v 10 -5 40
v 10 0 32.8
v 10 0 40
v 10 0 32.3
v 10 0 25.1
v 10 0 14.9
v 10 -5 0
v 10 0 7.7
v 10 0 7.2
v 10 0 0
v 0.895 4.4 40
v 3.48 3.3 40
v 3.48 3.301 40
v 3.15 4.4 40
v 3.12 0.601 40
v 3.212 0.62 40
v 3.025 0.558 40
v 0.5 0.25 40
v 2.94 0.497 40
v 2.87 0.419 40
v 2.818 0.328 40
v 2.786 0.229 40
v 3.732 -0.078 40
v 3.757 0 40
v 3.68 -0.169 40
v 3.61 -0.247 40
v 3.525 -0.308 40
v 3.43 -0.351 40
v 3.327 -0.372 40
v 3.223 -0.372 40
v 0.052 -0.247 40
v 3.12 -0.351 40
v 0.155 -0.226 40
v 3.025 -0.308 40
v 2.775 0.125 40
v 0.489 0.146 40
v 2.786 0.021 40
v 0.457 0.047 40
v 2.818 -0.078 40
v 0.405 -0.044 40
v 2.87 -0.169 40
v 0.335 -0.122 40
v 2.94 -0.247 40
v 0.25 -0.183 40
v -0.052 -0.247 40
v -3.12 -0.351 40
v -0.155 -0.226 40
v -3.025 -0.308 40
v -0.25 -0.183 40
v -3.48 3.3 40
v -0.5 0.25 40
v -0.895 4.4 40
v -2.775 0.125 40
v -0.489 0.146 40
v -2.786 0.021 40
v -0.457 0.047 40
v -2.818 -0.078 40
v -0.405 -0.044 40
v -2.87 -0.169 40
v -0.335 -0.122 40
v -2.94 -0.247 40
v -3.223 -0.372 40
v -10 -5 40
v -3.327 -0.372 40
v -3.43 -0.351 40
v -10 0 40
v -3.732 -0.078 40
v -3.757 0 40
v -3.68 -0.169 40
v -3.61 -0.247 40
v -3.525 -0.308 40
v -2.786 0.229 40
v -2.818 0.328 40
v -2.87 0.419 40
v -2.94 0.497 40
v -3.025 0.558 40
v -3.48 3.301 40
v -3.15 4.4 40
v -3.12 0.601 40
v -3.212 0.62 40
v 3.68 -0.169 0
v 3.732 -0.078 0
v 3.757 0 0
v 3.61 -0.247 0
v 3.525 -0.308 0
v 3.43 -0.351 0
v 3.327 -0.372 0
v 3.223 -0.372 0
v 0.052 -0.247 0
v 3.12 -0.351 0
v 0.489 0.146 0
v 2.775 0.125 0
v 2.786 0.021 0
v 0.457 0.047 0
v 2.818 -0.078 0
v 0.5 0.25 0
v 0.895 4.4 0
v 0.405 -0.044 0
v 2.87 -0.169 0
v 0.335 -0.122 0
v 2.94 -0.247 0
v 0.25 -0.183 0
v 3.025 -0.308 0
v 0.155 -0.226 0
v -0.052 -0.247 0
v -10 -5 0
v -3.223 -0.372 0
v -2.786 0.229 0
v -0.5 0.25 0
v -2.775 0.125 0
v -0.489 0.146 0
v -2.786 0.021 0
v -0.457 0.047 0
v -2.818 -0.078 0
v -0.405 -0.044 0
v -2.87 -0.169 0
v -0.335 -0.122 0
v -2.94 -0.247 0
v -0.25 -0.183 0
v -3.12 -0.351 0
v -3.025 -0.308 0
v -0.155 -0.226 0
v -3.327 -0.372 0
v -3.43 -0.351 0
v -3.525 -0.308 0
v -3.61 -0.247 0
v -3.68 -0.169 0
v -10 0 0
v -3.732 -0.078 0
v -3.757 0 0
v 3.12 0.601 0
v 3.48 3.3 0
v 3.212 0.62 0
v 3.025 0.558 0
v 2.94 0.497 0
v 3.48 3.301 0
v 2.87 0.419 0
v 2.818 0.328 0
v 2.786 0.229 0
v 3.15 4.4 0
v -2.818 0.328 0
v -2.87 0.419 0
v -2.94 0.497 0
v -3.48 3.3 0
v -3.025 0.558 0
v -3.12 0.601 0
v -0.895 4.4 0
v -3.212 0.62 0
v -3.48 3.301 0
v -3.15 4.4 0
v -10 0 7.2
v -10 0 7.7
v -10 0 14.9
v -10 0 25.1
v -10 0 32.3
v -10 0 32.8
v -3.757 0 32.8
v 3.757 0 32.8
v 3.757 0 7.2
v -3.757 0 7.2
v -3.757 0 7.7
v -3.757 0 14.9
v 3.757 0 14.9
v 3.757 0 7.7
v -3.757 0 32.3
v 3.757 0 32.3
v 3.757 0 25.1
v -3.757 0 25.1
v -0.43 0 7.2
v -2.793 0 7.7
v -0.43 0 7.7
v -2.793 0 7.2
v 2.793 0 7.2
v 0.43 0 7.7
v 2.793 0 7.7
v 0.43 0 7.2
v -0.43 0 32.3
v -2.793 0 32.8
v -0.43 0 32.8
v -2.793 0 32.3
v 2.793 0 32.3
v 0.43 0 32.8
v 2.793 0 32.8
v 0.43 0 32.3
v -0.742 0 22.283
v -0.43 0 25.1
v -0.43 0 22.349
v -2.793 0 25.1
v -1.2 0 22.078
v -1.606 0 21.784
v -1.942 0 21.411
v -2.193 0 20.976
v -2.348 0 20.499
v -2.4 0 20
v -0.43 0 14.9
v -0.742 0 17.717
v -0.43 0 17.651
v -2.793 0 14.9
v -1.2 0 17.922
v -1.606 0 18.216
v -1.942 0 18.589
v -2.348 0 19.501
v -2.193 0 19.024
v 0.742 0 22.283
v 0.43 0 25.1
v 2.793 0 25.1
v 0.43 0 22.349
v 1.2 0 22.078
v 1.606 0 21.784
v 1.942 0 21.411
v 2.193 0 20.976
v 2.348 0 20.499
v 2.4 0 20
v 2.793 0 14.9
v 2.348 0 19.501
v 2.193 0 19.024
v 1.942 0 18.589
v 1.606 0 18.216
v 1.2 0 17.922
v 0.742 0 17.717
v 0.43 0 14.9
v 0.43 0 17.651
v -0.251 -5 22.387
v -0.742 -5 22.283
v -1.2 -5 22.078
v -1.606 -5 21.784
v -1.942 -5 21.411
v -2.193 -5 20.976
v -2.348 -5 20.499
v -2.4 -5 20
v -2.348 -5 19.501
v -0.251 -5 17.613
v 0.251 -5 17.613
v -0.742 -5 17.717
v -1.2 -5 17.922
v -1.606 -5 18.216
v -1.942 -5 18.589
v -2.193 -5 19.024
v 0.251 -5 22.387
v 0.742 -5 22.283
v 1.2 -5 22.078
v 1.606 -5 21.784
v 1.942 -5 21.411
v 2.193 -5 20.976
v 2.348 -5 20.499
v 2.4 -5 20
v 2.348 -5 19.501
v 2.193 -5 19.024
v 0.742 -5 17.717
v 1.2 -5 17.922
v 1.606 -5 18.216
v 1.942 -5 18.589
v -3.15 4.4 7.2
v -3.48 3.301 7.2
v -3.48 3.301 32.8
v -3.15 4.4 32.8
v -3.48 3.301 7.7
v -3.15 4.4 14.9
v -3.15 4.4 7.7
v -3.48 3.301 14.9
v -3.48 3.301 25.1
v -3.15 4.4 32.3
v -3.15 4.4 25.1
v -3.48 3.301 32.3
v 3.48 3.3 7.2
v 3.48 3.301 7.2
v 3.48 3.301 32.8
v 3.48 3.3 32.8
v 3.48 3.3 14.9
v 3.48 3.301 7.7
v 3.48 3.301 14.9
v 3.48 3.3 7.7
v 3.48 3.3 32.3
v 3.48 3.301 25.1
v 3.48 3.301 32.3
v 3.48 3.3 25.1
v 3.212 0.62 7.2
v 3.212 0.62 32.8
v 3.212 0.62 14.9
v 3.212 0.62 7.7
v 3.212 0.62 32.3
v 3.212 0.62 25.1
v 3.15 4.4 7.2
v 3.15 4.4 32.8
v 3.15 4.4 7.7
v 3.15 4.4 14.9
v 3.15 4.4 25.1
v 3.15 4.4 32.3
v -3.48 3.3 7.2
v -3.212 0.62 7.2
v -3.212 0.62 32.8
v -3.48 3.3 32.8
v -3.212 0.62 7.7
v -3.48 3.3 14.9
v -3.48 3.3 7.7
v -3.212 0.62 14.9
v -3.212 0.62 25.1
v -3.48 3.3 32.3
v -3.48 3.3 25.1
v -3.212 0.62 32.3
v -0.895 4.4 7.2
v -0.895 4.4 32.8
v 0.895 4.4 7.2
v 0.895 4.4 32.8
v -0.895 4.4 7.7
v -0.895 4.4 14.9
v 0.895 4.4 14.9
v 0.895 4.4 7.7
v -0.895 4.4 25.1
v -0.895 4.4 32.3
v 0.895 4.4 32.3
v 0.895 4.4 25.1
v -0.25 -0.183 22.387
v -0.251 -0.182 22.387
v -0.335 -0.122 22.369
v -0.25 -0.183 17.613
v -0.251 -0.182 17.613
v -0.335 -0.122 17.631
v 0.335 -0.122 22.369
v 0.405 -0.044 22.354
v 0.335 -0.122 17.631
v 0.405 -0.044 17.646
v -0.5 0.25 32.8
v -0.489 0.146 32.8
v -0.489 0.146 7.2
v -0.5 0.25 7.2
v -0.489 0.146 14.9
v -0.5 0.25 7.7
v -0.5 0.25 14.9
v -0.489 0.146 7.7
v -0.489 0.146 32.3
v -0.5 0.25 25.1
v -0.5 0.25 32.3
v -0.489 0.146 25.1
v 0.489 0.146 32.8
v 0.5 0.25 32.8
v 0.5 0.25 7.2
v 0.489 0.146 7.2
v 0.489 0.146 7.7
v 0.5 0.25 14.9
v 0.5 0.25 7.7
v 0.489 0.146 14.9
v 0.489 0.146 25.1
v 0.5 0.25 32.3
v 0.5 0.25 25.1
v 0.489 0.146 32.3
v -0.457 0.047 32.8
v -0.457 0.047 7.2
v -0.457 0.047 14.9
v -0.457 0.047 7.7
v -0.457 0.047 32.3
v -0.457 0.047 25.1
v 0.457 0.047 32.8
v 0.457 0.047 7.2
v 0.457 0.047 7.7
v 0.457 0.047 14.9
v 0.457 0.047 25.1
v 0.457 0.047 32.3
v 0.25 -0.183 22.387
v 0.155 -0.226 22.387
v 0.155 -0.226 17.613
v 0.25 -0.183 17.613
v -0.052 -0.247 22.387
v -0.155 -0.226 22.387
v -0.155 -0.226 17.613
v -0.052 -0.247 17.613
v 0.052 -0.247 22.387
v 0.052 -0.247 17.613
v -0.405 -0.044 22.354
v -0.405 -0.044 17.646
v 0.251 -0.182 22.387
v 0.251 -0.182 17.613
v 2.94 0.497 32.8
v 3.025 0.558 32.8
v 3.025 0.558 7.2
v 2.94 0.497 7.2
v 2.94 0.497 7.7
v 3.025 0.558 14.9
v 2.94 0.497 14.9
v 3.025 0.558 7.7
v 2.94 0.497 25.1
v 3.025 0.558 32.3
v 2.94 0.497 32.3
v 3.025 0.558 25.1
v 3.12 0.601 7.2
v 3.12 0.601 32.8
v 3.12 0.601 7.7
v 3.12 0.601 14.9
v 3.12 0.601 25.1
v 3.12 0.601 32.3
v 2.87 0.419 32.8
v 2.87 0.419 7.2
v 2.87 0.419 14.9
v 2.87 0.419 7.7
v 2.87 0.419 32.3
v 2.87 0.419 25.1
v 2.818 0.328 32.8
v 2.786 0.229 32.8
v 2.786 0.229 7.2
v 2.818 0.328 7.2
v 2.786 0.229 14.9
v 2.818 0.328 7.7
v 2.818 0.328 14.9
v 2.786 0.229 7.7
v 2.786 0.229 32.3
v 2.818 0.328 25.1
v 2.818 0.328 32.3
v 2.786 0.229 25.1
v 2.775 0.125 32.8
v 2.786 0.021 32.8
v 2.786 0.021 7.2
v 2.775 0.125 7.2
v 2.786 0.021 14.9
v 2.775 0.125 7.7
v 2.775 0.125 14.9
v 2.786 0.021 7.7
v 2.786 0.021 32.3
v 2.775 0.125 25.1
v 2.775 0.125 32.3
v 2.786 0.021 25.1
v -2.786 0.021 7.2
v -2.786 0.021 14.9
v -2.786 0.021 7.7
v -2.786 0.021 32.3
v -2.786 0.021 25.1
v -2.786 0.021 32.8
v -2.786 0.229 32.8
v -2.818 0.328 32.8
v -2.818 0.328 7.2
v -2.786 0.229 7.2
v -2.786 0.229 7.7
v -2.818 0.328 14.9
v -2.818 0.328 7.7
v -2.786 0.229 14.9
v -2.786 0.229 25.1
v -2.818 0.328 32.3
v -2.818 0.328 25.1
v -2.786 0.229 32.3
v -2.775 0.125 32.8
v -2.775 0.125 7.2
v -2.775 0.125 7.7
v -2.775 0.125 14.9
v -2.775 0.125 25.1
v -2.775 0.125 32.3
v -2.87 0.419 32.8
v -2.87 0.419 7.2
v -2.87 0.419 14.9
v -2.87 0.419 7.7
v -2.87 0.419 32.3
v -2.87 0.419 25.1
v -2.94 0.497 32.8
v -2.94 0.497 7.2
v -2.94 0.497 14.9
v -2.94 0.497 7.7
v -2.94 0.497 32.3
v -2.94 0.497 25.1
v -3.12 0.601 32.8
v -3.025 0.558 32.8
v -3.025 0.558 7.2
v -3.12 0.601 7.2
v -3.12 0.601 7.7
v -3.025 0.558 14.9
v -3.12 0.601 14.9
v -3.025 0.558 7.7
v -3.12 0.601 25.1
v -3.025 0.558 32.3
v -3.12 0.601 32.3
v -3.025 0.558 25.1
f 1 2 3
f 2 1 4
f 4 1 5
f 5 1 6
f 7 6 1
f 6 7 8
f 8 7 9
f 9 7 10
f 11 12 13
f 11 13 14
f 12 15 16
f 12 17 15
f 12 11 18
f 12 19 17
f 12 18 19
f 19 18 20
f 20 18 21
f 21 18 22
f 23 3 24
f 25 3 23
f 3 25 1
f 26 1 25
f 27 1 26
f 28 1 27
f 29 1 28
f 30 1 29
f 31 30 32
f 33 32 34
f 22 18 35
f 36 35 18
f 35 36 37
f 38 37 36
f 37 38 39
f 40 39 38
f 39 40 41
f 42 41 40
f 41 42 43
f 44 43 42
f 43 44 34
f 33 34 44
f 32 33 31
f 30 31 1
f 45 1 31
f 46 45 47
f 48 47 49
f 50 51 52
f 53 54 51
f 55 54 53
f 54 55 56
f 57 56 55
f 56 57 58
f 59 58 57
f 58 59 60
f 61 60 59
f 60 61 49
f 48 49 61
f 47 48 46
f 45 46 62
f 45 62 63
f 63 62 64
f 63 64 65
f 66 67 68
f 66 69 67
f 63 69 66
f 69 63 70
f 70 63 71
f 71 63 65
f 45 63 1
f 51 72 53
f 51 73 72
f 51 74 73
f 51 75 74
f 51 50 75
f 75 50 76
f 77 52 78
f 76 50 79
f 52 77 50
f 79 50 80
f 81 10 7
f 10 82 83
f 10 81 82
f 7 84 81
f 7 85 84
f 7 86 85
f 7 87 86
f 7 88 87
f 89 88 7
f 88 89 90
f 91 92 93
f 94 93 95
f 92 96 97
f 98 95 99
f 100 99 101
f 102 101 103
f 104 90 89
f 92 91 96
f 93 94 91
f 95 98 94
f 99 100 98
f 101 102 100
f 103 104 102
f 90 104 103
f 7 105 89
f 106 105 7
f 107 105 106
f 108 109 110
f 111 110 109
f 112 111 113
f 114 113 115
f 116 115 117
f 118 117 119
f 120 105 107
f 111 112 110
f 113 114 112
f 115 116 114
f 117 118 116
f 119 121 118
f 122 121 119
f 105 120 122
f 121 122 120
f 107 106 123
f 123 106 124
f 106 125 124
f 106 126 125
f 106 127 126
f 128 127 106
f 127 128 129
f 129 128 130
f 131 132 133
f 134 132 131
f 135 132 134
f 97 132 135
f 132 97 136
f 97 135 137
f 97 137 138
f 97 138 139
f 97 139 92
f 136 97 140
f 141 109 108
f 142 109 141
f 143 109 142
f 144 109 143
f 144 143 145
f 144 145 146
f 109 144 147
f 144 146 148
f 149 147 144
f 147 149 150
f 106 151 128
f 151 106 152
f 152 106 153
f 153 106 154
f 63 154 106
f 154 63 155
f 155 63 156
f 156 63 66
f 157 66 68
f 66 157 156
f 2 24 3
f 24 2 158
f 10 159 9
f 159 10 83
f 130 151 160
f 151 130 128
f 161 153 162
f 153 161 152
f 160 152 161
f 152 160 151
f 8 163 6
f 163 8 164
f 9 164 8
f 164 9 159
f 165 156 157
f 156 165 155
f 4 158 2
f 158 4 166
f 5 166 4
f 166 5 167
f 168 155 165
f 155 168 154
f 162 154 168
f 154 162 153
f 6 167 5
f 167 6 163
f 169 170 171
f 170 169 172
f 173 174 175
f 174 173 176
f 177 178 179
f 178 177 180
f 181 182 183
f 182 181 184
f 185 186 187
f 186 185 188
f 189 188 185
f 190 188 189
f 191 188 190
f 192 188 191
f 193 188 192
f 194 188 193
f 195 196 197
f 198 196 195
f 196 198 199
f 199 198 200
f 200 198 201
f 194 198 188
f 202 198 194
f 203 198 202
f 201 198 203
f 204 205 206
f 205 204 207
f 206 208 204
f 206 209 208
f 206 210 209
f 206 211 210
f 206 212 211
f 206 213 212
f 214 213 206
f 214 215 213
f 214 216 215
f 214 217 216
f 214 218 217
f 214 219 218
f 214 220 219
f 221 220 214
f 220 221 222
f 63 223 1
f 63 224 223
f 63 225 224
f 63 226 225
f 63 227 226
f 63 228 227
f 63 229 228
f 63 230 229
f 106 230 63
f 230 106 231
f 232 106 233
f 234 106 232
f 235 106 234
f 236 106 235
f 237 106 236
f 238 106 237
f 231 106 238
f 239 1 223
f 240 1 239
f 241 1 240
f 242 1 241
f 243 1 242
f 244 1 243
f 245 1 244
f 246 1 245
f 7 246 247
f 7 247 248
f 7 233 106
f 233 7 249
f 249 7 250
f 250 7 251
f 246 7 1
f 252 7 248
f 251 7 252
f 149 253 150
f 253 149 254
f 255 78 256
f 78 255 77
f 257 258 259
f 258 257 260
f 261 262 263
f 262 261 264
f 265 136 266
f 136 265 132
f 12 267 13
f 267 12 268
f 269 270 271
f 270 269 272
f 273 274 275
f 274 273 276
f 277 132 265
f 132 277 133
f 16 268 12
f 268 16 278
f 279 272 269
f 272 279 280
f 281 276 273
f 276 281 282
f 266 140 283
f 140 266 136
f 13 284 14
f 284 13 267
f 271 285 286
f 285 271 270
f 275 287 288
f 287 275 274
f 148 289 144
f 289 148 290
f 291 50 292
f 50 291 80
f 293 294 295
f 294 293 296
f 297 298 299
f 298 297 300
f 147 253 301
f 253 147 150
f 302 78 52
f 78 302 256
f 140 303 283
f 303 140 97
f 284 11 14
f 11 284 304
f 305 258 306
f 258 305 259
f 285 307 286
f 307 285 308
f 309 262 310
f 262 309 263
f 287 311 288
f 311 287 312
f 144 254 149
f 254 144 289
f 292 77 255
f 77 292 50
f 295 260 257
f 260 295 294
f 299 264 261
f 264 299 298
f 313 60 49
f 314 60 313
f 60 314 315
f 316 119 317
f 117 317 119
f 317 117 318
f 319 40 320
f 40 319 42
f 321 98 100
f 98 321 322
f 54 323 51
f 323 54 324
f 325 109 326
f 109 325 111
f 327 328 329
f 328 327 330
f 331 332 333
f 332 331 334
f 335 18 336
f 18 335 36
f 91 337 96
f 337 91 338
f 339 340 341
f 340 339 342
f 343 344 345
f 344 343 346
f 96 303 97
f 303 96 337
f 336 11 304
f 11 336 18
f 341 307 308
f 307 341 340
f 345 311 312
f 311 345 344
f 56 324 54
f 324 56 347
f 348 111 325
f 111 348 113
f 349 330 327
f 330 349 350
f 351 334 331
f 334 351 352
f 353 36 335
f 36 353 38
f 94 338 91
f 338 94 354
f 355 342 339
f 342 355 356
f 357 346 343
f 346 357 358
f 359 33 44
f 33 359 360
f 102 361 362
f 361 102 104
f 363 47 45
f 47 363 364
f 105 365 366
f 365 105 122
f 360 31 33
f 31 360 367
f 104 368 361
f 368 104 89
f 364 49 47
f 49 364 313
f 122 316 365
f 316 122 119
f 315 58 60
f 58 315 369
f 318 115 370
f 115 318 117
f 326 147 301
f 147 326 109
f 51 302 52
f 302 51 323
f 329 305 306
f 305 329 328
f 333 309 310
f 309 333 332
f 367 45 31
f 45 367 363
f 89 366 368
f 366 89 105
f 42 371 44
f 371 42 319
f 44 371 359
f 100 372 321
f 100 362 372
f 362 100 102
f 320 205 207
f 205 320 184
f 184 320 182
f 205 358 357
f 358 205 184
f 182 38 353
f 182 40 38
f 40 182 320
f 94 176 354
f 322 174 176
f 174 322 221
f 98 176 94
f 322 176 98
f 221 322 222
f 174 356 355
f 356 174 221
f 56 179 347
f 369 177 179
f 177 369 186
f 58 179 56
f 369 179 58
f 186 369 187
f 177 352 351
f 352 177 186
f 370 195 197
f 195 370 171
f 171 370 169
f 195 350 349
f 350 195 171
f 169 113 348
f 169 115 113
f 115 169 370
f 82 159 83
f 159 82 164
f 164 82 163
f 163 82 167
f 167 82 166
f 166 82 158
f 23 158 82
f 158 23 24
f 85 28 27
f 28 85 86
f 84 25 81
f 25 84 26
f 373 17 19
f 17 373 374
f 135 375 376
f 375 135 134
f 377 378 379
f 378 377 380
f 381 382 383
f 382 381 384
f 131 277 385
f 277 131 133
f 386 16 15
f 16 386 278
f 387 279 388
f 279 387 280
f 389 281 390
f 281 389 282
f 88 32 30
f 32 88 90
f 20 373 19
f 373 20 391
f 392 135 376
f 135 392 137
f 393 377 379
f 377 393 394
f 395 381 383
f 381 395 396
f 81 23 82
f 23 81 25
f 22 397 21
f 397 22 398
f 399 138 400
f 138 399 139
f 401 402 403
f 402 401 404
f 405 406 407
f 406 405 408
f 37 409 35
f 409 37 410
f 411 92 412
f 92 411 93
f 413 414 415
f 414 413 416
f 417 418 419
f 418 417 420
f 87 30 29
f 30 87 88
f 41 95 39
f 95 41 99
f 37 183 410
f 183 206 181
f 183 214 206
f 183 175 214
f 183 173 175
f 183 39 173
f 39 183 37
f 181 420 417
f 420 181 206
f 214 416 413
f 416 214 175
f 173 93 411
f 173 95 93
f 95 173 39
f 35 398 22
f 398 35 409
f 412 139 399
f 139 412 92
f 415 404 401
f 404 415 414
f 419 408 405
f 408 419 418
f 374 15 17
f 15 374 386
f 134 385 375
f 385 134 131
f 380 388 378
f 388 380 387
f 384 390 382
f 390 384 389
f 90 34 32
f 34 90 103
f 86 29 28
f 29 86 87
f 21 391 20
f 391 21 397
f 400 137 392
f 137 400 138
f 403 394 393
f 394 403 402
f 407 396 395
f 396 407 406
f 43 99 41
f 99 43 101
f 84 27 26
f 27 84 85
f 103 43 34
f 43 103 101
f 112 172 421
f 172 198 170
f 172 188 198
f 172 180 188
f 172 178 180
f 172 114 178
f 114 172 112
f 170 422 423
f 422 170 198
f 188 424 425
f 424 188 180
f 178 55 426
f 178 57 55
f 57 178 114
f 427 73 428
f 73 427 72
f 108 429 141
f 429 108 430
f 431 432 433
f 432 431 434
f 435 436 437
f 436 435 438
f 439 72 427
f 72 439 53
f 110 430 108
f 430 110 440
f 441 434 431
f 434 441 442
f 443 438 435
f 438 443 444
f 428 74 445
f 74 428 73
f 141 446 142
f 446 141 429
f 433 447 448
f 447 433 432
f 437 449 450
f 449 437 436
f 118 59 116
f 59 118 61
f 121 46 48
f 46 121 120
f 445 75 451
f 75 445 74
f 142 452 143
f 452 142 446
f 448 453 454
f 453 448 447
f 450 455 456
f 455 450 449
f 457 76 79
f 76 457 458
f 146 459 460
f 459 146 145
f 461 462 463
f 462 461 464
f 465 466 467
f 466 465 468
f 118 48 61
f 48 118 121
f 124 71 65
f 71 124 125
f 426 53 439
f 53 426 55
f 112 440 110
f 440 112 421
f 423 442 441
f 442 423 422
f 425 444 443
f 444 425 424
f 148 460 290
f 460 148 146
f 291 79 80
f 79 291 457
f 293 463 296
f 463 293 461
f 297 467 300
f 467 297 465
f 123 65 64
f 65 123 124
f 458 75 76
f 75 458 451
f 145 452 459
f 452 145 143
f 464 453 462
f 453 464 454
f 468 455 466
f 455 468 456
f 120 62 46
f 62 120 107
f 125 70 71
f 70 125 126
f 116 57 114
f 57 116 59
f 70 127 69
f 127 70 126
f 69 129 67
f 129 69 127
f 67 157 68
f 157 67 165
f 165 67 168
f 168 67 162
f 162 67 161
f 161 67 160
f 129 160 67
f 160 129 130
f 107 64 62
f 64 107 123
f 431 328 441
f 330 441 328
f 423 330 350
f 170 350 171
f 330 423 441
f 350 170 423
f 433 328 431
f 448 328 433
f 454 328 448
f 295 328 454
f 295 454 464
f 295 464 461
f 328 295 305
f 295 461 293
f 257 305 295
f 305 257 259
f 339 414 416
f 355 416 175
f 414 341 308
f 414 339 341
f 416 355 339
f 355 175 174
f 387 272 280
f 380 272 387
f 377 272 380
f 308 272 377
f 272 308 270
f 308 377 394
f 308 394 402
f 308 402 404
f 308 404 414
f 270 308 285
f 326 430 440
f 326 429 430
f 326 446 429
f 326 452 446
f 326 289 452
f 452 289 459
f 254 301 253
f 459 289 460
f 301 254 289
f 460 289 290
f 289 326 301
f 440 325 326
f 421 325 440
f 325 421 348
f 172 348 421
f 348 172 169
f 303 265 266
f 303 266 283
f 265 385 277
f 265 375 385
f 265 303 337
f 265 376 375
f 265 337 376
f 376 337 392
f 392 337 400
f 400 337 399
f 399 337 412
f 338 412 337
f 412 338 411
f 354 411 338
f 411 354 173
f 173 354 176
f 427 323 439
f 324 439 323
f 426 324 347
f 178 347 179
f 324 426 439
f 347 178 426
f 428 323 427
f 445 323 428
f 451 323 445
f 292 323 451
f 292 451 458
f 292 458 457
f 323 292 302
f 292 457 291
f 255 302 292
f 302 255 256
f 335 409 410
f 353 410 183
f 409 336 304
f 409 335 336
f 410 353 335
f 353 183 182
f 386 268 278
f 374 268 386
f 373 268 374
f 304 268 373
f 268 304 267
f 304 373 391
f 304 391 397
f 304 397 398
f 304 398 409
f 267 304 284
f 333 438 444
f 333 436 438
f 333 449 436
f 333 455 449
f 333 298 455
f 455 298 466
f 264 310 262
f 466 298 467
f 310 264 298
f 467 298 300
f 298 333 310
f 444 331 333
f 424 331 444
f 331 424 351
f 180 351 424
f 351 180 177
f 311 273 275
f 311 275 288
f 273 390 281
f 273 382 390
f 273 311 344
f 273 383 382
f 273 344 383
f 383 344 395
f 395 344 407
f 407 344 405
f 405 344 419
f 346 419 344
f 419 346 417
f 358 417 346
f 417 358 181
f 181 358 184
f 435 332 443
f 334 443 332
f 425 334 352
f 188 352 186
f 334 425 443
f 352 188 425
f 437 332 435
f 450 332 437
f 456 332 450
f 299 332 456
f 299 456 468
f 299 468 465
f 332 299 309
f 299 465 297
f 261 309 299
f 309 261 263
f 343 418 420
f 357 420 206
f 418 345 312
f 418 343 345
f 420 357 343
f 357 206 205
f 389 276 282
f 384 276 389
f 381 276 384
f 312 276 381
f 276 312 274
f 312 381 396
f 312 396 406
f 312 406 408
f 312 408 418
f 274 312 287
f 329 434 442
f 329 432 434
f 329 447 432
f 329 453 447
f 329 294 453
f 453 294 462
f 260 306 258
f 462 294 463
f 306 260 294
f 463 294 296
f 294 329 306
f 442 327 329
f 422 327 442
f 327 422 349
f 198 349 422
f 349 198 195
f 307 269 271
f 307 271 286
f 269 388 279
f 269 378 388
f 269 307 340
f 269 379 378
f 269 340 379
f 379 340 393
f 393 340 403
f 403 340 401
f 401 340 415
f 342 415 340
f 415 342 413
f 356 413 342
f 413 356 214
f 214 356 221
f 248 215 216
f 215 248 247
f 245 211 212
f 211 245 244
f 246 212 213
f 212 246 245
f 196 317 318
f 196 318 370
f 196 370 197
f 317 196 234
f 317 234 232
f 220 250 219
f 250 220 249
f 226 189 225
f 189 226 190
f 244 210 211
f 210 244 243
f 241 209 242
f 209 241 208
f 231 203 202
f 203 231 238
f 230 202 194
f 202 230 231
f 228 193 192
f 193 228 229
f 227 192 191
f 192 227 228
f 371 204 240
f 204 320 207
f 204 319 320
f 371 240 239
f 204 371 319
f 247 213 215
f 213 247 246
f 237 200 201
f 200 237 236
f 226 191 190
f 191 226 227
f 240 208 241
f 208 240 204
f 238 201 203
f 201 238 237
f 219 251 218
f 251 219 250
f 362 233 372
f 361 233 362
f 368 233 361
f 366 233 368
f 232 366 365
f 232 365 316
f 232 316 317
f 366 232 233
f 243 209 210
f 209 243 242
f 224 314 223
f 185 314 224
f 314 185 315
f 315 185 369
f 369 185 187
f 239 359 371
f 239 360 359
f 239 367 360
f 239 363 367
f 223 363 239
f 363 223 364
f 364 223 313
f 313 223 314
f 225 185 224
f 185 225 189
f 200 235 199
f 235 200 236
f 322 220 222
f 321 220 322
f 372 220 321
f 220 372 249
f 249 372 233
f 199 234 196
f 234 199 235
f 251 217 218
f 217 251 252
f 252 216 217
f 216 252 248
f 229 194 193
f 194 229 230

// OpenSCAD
WIDTH = 20;
HEIGHT = 40;
THICKNESS = 5;

RAIL_OPENING = 6.5 -.2;
RAIL_THICKNESS = 2.2;
MARGIN = .33;
STEP = HEIGHT/5;
BOLT = 10.2;
DIAMETER = 4.8;
ATOM = .001;
R = .5;
$fn = 30;

    module piece() {
    difference() {
        union() {
            translate([-WIDTH/2, -THICKNESS, 0])
            cube([WIDTH, THICKNESS, HEIGHT]);
            hull() {
                translate([-RAIL_OPENING/2, 0, 0])
                cube([RAIL_OPENING, RAIL_THICKNESS*2, HEIGHT]);

                translate([-RAIL_OPENING/2-MARGIN, RAIL_THICKNESS*1.5, 0])
                cube([RAIL_OPENING + MARGIN*2, ATOM, HEIGHT]);
            }
        }
        
        hull() {
            translate([0, R/2, -ATOM/2])
            cylinder(r=R, h=HEIGHT+ATOM);

            translate([0, RAIL_THICKNESS*2.5, -ATOM/2])
            cylinder(r=R*2, h=HEIGHT+ATOM, $fn=30);
        }

        translate([RAIL_OPENING/2+R/4, R/4, -ATOM/2])
        cylinder(r=R, h=HEIGHT+ATOM);

        translate([-RAIL_OPENING/2-R/4, R/4, -ATOM/2])
        cylinder(r=R, h=HEIGHT+ATOM);
        
        th = .5;
        dz = HEIGHT/4 - BOLT/4;
        translate([-WIDTH/2, 0, dz-th/2]) cube([WIDTH, RAIL_THICKNESS*3, th]);
        translate([-WIDTH/2, 0, HEIGHT-dz-th/2]) cube([WIDTH, RAIL_THICKNESS*3, th]);
        
        translate([-WIDTH/2, 0, HEIGHT/2 - BOLT/2])
        cube([WIDTH, RAIL_THICKNESS*3, BOLT]);

        translate([0, THICKNESS, HEIGHT/2])
        rotate([90, 0, 0])
        cylinder(d=DIAMETER, h=THICKNESS*3);
    }
}

//rotate([90, 0, 0])
piece();
